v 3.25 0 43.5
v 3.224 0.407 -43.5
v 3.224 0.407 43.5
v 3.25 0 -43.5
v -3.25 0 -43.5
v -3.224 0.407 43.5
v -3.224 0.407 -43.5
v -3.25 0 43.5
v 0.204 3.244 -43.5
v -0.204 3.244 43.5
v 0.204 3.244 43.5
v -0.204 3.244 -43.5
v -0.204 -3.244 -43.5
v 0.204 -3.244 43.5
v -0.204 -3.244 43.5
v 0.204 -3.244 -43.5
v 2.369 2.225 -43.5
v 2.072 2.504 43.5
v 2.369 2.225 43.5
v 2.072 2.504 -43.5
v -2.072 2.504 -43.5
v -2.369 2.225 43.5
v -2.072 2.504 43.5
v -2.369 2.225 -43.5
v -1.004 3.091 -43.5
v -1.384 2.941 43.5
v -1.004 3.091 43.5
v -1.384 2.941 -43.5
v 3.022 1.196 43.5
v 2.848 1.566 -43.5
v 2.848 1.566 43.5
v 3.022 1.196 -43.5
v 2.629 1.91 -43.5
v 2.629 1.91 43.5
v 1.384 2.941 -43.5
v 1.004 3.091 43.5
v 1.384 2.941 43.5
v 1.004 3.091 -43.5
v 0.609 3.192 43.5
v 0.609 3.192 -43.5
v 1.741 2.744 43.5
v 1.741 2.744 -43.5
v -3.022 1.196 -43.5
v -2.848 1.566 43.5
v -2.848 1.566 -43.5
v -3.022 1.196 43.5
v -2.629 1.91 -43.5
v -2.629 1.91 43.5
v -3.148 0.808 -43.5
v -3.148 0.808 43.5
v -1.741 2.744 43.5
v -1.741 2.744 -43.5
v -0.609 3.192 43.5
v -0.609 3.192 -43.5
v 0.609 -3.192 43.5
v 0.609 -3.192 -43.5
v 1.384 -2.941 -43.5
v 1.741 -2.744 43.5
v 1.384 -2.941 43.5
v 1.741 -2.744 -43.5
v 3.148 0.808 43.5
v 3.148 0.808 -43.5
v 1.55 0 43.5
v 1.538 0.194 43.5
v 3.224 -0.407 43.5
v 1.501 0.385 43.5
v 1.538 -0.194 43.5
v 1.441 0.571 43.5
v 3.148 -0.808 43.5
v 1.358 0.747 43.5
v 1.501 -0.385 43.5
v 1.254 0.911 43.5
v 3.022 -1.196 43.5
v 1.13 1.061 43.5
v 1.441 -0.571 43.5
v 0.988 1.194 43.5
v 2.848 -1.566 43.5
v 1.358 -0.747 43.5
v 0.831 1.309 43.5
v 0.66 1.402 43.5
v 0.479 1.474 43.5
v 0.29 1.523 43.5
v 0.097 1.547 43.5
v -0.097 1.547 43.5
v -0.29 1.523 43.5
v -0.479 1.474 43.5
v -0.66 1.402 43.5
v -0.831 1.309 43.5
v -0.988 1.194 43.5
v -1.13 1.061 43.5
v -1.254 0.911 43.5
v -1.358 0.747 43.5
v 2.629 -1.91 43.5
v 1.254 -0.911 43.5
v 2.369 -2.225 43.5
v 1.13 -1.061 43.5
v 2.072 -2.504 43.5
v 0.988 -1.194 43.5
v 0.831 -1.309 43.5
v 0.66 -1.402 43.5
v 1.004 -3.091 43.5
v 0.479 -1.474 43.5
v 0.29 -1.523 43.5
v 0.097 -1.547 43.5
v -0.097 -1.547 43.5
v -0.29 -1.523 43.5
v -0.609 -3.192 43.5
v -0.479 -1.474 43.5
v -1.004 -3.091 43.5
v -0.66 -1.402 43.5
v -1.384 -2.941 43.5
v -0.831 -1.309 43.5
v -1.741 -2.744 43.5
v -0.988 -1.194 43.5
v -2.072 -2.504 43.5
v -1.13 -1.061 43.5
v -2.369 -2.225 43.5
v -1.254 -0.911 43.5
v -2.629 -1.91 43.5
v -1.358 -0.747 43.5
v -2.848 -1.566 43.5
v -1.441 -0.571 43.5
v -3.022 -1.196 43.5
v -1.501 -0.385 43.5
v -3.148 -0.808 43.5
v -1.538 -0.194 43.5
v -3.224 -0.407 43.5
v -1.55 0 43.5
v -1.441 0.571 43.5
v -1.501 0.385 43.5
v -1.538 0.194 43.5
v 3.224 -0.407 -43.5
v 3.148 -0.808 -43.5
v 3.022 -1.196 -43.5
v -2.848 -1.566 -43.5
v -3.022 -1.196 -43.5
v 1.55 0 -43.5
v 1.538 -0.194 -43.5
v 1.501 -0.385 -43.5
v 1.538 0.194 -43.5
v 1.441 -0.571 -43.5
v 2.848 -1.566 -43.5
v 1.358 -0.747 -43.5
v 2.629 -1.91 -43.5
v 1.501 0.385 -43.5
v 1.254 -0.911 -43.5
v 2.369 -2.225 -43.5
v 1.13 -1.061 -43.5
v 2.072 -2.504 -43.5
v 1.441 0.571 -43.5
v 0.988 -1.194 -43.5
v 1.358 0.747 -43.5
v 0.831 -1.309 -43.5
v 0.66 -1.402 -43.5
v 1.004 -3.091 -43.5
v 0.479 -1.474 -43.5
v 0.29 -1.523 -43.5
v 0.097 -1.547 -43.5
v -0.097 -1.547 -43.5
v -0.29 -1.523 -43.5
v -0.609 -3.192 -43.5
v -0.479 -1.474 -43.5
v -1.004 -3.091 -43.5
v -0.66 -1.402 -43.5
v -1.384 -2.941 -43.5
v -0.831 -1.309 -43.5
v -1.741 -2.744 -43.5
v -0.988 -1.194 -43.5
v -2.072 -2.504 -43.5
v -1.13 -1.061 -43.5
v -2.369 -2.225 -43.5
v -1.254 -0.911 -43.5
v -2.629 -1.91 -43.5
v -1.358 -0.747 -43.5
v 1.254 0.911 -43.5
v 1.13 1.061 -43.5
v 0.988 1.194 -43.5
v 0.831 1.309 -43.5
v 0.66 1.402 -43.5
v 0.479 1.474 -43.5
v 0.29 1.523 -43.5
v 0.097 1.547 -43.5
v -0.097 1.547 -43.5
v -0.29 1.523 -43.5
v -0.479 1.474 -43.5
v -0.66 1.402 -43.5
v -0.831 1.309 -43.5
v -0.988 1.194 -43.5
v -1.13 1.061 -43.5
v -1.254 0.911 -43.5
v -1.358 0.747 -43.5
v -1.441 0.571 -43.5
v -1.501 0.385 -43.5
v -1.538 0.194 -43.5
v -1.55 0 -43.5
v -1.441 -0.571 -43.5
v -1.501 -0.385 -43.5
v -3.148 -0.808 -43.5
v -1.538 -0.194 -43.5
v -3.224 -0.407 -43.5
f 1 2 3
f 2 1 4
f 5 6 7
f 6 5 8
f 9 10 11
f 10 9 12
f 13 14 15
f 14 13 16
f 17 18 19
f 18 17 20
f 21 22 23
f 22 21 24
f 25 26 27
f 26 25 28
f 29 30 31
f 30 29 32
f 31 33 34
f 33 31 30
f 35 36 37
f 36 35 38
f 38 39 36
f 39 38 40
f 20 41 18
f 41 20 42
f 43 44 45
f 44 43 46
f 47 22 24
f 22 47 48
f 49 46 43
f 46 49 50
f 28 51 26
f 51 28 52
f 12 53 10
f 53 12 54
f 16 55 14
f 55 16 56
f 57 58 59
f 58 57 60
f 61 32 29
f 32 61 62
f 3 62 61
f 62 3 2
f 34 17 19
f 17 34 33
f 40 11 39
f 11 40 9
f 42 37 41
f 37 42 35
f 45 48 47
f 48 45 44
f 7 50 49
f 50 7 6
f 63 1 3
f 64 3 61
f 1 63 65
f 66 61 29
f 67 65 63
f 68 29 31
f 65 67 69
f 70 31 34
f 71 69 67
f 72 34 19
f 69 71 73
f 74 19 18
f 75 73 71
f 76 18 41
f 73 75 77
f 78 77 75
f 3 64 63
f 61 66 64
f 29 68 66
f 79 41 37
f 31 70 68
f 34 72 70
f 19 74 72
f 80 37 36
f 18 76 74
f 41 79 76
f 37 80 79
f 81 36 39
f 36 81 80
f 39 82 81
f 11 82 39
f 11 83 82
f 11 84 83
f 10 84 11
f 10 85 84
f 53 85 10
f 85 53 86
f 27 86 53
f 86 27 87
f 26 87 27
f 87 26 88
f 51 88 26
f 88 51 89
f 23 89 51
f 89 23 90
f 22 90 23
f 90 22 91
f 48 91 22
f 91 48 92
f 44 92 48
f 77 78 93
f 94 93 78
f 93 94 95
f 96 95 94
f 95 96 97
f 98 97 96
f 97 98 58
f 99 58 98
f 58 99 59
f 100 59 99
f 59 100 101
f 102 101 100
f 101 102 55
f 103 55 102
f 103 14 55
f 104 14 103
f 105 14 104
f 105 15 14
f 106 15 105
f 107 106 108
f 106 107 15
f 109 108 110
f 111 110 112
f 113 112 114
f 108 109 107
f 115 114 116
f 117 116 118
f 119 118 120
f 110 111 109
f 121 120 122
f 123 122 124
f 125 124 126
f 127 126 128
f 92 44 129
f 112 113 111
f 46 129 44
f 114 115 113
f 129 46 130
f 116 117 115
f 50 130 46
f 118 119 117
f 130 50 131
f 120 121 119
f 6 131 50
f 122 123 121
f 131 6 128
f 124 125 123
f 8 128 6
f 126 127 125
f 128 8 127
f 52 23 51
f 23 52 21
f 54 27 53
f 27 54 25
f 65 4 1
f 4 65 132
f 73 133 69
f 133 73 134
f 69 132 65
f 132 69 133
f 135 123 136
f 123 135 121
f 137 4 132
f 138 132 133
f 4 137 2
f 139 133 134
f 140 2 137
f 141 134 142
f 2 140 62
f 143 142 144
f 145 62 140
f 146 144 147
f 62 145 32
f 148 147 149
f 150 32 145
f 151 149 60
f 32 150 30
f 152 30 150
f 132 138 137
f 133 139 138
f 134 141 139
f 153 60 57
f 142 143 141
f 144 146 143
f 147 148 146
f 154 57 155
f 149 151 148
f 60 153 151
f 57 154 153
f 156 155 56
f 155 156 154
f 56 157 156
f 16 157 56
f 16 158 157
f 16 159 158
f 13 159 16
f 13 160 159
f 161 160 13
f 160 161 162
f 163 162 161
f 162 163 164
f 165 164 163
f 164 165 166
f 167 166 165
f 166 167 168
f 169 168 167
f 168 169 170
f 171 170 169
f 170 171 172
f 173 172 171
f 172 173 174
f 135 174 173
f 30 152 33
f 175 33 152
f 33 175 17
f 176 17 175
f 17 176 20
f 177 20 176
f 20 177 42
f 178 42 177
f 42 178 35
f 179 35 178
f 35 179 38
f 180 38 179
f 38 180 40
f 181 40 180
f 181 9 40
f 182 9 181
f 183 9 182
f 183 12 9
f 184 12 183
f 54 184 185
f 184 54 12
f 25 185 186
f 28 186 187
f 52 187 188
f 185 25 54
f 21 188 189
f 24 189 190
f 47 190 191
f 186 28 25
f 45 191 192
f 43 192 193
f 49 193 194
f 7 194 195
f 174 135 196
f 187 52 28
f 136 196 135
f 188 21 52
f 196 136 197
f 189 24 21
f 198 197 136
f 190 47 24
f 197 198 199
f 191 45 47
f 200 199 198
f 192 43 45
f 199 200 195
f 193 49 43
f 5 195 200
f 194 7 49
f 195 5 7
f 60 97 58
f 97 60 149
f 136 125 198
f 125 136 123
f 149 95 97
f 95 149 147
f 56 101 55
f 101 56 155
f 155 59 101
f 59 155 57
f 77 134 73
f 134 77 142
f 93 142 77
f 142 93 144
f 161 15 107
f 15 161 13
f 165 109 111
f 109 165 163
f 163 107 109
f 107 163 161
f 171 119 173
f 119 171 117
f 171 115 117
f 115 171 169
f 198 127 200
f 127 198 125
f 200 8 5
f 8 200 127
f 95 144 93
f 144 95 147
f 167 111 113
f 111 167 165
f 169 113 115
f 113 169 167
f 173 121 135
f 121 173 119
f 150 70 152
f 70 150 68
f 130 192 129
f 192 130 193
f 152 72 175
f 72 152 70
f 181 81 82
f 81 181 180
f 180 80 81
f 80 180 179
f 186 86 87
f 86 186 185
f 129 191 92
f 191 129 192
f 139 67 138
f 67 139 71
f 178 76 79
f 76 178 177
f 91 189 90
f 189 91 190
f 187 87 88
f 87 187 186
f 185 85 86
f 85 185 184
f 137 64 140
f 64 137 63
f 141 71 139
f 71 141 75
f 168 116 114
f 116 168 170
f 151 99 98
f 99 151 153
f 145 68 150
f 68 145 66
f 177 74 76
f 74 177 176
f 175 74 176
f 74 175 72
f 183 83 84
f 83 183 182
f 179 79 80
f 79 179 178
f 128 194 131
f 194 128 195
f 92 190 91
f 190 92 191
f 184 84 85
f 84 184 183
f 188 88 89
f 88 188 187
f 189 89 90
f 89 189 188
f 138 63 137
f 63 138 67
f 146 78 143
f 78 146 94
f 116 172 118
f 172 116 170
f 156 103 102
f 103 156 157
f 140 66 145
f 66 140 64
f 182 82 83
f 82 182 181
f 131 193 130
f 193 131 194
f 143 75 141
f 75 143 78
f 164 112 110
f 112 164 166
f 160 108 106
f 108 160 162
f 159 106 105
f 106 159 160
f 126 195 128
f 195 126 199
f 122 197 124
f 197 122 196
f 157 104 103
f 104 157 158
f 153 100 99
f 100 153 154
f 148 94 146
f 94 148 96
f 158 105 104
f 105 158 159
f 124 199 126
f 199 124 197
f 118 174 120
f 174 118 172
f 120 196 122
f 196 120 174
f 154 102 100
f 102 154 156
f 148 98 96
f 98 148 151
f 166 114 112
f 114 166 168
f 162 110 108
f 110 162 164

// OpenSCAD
$fn = 50;


difference() {
	union() {
		translate(v = [0, 0, -43.5000000000]) {
			cylinder(h = 87, r = 3.2500000000);
		}
	}
	union() {
		translate(v = [0, 0, -100.0000000000]) {
			cylinder(h = 200, r = 1.5500000000);
		}
	}
}
